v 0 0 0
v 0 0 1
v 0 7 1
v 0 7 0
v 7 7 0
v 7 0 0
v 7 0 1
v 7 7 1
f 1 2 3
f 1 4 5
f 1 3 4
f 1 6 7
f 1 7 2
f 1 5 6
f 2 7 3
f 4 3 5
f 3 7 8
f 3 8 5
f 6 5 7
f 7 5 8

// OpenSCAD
/* Warning, this is a very basic generator with a lot of approximation 
input data : [VQFN, MAC, 7x7x1.0mm, 48, , B, C04-25407B]
generated by com.zoubworld.electronics.cad.model3d.Basic
Date : Sun Feb 15 10:50:49 CET 2026
*/

//body
color("black")
translate([0,0,0])
cube([7.0,7.0,1.0], center=false);
